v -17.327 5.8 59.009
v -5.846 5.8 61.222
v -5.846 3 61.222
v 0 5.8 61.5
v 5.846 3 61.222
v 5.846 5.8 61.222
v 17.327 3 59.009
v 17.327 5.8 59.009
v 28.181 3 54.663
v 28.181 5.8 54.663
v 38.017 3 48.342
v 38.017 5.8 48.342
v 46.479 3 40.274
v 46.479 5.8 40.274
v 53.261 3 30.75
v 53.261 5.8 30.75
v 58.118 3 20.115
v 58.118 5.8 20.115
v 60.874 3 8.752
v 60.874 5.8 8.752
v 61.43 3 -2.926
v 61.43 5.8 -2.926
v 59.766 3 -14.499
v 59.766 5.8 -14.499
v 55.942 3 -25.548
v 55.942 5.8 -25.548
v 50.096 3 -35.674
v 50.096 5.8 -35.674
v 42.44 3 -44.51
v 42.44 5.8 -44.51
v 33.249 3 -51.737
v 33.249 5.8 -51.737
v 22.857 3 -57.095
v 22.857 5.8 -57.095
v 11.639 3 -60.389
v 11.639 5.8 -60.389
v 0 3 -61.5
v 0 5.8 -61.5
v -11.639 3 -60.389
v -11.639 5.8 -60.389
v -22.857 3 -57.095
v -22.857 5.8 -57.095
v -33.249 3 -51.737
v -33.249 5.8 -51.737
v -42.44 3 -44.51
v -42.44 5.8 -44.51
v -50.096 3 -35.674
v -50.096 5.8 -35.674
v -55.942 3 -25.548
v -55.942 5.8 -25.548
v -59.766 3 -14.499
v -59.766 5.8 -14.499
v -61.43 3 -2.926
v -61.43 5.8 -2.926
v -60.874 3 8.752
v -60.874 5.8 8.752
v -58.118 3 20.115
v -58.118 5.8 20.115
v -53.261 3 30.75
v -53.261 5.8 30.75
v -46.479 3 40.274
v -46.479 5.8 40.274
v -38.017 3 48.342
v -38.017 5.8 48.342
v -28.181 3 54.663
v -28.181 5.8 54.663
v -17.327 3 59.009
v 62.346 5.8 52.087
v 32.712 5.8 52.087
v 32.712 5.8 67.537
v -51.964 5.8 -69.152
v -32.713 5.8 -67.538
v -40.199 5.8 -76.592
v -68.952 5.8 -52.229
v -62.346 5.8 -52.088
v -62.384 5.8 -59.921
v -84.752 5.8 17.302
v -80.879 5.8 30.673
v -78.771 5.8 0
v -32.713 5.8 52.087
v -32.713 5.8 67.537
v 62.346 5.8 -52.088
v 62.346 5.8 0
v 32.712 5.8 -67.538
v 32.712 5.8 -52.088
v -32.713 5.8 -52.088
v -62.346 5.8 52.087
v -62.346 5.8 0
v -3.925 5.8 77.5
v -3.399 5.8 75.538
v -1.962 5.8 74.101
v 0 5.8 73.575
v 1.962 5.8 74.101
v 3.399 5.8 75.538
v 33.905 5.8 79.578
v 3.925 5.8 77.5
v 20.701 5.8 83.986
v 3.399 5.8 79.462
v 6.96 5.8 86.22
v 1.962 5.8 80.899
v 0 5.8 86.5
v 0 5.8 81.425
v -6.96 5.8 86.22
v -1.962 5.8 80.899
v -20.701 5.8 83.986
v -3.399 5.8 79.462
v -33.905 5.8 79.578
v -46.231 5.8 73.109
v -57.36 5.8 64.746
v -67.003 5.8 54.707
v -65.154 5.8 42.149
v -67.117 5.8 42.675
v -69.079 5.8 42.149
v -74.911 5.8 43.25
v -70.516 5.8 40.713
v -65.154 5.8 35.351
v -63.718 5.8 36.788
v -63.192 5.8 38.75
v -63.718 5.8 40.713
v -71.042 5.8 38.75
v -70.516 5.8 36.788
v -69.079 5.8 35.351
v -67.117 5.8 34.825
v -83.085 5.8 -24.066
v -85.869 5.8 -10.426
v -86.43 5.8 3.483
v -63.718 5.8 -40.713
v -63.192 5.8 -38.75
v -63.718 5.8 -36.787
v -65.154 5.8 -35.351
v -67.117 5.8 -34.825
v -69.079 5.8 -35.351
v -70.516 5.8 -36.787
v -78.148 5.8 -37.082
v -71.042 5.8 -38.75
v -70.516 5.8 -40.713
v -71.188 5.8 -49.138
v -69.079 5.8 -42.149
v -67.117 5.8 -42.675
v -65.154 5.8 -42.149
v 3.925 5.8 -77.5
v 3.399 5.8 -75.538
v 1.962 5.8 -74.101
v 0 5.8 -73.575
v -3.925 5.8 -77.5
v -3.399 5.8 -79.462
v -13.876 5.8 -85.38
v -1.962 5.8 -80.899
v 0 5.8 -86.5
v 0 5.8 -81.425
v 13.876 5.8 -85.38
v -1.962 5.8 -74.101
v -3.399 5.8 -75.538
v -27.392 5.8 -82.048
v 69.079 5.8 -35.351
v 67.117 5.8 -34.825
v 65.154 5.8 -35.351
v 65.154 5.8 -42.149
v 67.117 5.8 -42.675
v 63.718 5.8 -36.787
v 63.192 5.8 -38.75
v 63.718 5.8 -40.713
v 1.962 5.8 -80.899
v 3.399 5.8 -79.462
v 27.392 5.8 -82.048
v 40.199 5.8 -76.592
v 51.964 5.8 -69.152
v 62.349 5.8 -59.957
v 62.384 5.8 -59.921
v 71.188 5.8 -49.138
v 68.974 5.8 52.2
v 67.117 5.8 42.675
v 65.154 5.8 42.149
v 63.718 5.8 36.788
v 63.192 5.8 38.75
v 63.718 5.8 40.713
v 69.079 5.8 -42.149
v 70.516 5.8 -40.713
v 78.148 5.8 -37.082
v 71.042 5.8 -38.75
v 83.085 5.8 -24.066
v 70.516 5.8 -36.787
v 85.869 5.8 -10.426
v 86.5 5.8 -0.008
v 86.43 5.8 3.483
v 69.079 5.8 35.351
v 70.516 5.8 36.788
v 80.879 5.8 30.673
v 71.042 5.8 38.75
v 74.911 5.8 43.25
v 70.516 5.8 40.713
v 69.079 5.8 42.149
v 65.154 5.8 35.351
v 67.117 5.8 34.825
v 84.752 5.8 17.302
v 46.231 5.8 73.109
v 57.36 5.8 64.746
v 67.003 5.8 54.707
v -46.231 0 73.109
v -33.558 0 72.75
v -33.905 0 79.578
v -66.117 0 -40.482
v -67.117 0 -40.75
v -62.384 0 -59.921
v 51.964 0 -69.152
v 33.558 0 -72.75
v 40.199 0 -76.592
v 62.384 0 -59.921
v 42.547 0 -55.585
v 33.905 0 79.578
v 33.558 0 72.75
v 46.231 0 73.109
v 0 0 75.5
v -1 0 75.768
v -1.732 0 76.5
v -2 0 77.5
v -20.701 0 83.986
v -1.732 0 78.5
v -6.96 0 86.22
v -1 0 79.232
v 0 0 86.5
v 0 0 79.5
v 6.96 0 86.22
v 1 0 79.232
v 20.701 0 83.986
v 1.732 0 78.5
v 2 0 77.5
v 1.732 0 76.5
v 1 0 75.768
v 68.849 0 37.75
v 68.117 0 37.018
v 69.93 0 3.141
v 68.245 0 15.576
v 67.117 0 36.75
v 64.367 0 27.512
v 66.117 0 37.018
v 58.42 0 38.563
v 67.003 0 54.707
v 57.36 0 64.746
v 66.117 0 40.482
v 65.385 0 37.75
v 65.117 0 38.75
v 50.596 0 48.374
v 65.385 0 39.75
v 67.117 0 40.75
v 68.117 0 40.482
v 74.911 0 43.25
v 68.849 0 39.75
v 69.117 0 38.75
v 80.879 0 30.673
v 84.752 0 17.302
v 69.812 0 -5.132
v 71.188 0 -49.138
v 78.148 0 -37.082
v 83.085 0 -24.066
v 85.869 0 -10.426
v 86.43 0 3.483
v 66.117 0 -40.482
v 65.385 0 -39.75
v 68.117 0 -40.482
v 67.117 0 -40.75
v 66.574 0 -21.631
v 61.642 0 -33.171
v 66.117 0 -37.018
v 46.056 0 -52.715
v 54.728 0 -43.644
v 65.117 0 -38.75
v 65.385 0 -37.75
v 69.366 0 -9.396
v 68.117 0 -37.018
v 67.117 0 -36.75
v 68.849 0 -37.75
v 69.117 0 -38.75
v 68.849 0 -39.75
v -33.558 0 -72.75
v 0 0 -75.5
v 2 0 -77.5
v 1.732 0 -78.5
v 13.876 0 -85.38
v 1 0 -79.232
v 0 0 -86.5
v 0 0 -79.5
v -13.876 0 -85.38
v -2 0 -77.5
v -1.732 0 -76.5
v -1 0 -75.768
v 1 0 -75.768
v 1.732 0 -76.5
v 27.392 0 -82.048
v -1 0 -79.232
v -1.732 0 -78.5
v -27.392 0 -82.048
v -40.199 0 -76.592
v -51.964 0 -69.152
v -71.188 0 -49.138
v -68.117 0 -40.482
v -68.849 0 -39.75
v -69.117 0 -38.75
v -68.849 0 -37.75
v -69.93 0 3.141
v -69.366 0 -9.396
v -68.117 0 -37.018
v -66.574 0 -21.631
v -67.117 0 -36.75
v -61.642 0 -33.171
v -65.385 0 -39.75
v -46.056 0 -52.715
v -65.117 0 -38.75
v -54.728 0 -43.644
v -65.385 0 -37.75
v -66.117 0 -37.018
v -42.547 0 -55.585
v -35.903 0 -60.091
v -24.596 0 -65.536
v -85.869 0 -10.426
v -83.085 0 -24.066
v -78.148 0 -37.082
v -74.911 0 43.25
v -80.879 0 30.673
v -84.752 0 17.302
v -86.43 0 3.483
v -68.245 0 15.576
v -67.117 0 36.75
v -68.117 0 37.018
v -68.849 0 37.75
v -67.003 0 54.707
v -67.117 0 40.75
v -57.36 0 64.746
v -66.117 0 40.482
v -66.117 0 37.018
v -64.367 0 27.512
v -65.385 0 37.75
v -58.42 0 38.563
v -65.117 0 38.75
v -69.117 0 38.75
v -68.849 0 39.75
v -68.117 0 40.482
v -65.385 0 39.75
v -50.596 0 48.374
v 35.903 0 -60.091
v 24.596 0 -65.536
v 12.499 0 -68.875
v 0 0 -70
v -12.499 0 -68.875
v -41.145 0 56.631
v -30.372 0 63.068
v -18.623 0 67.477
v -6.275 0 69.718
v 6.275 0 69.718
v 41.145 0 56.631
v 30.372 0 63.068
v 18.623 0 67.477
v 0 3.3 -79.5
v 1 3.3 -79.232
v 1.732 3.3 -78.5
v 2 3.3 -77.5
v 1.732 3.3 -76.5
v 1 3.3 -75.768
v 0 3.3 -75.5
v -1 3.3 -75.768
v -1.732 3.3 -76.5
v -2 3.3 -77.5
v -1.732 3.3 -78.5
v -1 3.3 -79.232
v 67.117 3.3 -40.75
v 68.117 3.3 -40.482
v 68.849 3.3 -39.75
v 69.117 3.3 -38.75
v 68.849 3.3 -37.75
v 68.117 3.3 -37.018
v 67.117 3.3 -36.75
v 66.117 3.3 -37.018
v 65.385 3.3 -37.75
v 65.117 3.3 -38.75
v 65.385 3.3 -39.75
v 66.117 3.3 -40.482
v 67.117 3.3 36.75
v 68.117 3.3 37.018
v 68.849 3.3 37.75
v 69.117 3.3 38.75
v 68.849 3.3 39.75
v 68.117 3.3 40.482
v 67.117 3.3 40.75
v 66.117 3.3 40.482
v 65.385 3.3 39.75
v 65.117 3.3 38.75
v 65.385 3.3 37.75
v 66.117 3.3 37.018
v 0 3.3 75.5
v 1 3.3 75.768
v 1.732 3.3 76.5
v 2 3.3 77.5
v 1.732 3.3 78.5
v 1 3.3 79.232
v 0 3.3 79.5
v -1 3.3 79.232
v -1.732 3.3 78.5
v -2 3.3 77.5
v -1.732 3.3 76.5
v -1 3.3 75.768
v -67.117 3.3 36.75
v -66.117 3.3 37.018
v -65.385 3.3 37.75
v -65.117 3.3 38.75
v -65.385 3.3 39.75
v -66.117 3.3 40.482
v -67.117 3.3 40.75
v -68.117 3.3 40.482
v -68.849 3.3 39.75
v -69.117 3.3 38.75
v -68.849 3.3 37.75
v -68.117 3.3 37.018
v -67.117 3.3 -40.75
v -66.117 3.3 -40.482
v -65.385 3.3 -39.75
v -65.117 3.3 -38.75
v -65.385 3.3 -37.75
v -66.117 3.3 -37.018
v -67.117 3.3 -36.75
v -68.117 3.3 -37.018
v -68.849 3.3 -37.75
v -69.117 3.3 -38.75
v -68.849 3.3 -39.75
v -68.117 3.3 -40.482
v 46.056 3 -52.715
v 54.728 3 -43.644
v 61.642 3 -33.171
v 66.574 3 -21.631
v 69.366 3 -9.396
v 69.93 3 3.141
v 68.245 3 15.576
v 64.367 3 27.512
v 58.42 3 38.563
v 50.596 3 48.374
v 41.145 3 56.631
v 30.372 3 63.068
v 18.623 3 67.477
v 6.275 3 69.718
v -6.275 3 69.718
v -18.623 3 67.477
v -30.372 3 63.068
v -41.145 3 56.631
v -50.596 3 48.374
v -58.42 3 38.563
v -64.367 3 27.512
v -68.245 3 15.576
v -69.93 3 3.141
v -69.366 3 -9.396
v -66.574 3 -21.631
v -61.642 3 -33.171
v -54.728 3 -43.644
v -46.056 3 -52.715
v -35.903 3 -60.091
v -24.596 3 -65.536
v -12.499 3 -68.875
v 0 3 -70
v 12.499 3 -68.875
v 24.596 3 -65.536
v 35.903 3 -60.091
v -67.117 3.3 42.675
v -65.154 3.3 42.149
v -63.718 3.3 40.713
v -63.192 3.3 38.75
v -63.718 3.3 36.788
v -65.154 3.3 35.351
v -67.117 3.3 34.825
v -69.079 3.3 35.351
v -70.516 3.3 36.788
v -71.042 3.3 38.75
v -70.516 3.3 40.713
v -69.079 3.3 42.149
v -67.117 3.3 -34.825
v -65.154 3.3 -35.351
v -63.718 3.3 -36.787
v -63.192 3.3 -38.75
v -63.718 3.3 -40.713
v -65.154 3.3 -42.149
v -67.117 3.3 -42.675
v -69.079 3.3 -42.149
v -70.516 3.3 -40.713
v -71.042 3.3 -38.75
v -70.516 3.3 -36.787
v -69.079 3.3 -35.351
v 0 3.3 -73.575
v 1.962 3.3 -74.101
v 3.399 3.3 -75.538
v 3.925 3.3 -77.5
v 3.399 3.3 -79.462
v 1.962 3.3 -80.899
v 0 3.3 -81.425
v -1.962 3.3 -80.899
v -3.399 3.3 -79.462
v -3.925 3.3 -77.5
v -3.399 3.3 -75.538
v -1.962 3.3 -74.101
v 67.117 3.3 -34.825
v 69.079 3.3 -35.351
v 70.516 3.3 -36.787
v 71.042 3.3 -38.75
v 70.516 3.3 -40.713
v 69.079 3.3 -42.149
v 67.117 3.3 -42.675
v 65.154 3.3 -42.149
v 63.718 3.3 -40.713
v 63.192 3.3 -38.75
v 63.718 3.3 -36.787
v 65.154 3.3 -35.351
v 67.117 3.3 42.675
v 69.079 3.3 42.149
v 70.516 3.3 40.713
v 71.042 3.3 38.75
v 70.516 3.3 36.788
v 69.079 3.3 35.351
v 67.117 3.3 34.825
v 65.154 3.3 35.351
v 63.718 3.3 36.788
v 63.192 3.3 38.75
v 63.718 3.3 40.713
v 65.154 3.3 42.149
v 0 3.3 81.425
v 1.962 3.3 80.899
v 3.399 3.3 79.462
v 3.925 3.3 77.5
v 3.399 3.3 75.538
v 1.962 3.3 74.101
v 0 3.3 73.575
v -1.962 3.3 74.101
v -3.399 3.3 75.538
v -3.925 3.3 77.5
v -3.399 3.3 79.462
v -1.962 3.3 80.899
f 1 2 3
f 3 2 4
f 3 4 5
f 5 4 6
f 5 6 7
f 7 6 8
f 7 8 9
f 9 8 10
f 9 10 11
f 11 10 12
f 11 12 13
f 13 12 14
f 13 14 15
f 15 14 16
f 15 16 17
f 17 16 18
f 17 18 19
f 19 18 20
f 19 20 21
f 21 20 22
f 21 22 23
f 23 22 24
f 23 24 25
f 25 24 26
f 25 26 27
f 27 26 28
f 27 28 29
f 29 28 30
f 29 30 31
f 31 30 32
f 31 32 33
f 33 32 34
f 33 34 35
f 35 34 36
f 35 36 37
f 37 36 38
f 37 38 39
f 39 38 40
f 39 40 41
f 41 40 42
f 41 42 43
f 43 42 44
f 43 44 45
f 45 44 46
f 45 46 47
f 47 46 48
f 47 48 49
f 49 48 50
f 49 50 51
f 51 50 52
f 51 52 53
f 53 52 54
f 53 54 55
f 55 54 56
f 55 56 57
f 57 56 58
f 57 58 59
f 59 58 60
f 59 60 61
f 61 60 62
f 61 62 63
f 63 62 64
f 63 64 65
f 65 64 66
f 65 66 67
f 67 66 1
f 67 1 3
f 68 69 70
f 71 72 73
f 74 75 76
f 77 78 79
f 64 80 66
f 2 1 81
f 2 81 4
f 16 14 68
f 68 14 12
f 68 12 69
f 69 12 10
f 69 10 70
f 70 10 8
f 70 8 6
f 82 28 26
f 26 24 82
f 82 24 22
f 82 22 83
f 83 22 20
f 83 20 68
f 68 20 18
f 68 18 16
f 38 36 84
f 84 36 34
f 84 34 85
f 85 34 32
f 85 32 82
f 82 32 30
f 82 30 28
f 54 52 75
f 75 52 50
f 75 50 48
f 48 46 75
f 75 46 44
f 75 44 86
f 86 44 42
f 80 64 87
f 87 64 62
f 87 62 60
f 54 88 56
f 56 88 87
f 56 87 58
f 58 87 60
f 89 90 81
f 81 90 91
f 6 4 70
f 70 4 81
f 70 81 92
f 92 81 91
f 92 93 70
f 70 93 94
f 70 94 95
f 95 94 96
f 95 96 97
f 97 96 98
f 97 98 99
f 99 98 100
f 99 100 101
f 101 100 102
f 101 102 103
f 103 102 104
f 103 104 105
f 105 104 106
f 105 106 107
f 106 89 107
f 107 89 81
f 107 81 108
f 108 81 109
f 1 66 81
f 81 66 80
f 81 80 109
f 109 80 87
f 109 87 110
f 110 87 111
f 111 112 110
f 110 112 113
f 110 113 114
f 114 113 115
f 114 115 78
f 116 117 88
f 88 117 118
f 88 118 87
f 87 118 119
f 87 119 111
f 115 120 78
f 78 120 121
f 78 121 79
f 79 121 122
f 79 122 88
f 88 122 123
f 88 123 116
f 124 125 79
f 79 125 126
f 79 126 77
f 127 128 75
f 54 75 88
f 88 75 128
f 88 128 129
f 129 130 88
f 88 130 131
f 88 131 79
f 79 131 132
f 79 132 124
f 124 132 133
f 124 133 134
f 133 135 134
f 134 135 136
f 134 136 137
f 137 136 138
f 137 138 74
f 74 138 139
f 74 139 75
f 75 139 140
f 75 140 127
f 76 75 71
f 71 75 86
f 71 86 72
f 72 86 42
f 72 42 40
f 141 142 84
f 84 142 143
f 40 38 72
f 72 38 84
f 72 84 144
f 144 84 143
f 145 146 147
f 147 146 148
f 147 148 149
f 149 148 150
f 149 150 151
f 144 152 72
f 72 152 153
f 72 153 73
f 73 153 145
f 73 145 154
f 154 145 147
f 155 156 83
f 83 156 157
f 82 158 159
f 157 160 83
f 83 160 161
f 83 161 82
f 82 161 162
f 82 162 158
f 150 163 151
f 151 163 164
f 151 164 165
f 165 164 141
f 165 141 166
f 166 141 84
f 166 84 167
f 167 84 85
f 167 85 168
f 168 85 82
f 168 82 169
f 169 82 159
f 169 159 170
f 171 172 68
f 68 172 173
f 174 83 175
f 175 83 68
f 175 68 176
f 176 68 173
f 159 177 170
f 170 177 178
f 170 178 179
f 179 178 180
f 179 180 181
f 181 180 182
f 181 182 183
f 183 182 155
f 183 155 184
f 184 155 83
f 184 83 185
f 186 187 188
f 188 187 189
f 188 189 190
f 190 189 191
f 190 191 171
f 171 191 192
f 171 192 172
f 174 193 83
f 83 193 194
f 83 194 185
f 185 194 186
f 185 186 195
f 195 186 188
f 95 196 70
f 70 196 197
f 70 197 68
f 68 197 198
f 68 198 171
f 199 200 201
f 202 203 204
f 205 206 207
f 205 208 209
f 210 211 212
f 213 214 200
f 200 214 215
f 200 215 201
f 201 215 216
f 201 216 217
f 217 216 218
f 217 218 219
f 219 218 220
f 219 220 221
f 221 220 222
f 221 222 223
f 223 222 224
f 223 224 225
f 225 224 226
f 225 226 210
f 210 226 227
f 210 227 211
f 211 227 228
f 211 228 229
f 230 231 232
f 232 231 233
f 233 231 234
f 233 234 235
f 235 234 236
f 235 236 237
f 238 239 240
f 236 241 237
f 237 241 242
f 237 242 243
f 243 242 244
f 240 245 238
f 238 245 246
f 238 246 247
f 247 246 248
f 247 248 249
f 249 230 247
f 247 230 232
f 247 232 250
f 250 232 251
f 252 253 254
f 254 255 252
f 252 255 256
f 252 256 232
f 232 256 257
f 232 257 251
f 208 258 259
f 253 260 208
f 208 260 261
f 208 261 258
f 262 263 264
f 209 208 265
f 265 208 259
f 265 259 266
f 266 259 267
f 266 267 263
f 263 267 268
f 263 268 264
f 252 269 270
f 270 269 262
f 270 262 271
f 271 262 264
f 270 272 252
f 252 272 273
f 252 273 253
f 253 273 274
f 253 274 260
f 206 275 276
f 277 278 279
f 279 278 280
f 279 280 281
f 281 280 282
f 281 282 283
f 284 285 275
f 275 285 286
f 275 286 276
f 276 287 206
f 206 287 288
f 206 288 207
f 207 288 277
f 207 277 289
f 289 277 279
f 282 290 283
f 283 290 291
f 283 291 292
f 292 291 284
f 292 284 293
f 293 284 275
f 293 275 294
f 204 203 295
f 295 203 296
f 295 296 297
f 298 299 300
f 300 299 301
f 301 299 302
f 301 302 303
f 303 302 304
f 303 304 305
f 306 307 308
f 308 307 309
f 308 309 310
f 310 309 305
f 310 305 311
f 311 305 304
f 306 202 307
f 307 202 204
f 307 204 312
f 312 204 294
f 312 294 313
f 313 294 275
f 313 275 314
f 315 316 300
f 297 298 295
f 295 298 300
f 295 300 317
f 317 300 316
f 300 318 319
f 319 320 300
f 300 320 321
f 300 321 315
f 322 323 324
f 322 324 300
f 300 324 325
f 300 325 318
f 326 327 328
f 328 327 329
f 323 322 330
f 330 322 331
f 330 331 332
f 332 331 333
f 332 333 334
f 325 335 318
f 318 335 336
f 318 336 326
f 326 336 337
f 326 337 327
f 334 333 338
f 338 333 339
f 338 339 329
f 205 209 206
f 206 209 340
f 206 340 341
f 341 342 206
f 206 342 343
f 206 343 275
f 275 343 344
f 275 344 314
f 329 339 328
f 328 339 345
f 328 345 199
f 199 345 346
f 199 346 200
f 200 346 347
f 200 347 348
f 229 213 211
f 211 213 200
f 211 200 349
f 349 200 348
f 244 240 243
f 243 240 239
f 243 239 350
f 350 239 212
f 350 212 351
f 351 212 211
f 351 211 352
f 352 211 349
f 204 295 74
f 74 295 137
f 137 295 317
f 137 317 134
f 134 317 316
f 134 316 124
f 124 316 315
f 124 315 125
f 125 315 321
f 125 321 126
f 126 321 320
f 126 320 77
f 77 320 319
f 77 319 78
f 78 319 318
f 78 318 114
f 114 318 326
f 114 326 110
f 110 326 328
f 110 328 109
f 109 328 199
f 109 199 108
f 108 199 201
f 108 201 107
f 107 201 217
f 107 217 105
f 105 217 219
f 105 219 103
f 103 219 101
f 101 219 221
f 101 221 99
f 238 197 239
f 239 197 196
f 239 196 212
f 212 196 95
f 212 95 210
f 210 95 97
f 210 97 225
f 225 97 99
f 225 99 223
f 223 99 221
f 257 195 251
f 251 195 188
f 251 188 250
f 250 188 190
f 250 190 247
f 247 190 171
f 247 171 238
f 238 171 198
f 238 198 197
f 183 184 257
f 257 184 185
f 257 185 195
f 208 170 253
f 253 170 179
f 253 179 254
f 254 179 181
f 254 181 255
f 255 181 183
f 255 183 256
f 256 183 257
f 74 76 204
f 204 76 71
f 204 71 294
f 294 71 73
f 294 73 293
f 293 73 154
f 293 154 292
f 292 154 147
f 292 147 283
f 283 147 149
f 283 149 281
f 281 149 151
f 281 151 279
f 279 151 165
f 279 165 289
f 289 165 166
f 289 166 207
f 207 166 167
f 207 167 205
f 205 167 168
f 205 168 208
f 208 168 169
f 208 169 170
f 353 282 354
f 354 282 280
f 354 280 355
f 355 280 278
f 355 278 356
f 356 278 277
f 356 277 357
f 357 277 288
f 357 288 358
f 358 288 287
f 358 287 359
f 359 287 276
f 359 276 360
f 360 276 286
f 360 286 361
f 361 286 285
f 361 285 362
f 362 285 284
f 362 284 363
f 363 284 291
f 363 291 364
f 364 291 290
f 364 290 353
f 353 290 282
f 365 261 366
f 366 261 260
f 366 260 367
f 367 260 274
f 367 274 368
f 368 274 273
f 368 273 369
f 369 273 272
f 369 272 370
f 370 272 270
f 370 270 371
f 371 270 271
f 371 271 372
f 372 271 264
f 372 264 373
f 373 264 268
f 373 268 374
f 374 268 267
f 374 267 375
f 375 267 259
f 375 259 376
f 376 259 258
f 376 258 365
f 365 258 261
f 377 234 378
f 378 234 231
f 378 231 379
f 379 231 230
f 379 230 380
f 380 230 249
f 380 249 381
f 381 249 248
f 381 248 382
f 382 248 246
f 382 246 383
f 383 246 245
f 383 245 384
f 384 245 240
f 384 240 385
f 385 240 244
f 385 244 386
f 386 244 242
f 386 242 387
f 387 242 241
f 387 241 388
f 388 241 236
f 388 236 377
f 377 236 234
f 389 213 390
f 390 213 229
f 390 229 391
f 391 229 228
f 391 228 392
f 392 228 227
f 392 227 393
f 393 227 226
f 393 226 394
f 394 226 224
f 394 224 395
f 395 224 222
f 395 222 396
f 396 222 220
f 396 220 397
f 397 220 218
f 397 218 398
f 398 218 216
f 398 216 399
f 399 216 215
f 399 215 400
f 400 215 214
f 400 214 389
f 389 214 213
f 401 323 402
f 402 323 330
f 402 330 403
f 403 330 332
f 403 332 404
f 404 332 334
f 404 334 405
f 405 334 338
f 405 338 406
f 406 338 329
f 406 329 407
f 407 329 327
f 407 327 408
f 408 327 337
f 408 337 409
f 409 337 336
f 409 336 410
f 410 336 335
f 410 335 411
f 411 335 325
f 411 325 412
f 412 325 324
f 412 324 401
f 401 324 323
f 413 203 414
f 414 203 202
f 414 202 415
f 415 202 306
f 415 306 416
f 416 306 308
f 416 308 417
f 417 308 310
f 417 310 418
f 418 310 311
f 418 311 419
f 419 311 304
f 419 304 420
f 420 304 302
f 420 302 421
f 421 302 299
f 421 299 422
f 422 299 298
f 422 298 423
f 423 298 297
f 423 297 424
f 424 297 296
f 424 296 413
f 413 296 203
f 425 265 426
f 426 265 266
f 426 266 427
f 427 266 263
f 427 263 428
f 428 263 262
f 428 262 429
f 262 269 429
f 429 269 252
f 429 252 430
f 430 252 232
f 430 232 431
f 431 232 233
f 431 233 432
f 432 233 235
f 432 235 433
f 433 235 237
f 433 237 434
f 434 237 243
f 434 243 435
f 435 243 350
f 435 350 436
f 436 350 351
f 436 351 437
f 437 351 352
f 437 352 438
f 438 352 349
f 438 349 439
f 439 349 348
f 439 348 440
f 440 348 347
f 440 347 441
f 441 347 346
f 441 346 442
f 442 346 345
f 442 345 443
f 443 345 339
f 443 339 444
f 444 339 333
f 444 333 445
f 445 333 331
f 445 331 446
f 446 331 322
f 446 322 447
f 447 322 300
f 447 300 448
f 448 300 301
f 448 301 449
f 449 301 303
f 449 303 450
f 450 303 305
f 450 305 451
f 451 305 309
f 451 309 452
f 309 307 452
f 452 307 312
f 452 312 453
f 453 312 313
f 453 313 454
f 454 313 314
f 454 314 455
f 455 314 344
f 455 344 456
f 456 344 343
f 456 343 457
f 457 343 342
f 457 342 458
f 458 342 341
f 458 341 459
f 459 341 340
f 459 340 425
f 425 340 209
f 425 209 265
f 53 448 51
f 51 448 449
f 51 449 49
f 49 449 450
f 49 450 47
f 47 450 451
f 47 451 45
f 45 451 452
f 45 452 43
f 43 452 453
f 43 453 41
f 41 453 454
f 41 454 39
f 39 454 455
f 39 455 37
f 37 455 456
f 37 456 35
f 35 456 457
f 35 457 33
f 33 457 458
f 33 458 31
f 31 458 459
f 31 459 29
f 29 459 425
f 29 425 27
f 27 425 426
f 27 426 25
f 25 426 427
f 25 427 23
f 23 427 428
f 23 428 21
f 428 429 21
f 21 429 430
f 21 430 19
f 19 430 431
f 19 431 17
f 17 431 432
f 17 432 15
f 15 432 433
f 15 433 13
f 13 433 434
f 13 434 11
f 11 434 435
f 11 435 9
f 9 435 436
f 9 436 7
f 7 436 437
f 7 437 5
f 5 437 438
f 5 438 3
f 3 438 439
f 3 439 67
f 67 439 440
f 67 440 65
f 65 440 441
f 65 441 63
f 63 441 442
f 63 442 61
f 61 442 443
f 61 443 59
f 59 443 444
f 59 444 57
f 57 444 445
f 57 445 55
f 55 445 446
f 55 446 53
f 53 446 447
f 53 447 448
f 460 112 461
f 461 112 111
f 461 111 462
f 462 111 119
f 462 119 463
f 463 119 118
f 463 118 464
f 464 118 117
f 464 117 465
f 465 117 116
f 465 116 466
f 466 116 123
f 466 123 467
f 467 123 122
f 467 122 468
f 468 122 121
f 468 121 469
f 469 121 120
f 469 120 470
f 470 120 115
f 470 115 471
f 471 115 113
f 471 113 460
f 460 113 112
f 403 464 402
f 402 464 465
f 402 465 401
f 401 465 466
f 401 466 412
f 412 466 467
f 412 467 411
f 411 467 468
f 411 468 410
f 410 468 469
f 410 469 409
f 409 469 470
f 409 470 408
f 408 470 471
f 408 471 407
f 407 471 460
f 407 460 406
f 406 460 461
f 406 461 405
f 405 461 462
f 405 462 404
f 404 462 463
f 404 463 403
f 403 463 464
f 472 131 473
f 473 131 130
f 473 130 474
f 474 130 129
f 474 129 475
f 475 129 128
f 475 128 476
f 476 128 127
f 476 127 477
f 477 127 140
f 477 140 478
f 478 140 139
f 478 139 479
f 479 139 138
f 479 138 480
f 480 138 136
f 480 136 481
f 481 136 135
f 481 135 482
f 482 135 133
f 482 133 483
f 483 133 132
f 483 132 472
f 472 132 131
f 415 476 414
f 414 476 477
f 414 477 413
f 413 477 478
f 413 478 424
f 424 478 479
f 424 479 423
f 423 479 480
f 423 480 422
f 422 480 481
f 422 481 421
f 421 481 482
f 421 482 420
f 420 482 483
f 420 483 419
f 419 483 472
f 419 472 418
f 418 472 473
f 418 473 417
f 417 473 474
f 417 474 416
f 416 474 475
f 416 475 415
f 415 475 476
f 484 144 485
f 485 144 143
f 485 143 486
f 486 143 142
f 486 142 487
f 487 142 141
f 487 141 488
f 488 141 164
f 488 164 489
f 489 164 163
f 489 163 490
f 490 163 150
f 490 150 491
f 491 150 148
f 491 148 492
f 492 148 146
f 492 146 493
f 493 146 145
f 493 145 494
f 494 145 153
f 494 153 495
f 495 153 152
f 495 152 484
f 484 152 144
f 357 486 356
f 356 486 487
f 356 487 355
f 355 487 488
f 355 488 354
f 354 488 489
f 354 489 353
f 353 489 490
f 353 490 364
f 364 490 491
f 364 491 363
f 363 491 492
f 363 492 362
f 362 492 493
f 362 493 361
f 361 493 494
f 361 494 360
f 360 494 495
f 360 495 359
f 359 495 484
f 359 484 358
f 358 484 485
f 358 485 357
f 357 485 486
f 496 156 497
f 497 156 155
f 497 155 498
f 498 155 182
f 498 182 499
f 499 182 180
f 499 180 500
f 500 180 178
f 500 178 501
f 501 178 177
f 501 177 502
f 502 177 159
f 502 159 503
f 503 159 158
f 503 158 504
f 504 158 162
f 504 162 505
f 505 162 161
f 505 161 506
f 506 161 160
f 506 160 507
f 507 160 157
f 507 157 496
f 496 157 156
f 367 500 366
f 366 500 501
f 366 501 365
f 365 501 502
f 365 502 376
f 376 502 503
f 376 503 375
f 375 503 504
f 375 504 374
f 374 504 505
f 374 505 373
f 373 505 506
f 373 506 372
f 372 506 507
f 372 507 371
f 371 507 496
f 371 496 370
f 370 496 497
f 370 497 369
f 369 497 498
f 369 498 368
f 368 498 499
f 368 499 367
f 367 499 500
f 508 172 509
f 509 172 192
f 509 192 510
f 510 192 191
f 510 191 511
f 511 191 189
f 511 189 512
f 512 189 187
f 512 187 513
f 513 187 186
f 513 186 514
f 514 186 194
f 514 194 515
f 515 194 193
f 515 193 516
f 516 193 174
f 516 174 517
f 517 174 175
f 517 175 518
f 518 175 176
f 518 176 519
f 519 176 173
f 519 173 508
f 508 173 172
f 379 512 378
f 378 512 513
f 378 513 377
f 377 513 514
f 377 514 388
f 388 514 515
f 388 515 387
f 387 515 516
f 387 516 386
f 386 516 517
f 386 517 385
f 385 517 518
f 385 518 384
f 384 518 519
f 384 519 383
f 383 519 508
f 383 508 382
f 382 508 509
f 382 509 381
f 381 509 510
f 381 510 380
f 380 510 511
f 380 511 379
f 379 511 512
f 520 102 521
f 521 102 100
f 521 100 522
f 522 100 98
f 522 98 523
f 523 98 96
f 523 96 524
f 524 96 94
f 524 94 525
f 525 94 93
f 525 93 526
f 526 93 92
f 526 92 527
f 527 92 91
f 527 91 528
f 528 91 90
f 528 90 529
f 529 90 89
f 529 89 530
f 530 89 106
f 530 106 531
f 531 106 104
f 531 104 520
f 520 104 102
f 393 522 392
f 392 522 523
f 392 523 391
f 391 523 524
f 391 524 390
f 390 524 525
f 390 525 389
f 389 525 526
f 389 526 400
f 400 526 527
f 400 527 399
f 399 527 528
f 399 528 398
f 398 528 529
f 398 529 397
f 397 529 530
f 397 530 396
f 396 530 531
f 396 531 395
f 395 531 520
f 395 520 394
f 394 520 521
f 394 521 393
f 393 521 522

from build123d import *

# Parameters (mm, degrees)
SKETCH2_R                 = 86.5
SKETCH2_R_2               = 61.5
SKETCH2_R_3               = 2
BOSS_EXTRUDE1_DEPTH       = 5.8
SKETCH3_R                 = 70
SKETCH3_R_2               = 61.5
CUT_EXTRUDE1_DEPTH        = 3
ADVANCEDHOLE1_START       = 3.3
ADVANCEDHOLE1_OUTLINE_R   = 3.925
ADVANCEDHOLE1_OUTLINE_R_2 = 2
ADVANCEDHOLE1_DEPTH       = 2.5
CIRPATTERN1_COUNT         = 6


# Read off the part's stored shape, not the designer's step: AdvancedHole1
with BuildPart() as part:
    # Sketch2 → Boss-Extrude1 (new body)
    with BuildSketch(Plane(origin=(0, 0, 0), x_dir=(1, 0, 0), z_dir=(0, 1, 0))):
        with Locations(Location((0, 0, 0), (0, 0, 270))):
            Circle(SKETCH2_R)
        with Locations(Location((0, 0, 0), (0, 0, 270))):
            Circle(SKETCH2_R_2, mode=Mode.SUBTRACT)
        with Locations(Location((0, 77.5, 0), (0, 0, 270))):
            Circle(SKETCH2_R_3, mode=Mode.SUBTRACT)
        with Locations(Location((67.116968793, 38.75, 0), (0, 0, 270))):
            Circle(SKETCH2_R_3, mode=Mode.SUBTRACT)
        with Locations(Location((67.116968793, -38.75, 0), (0, 0, 270))):
            Circle(SKETCH2_R_3, mode=Mode.SUBTRACT)
        with Locations(Location((0, -77.5, 0), (0, 0, 270))):
            Circle(SKETCH2_R_3, mode=Mode.SUBTRACT)
        with Locations(Location((-67.116968793, -38.75, 0), (0, 0, 270))):
            Circle(SKETCH2_R_3, mode=Mode.SUBTRACT)
        with Locations(Location((-67.116968793, 38.75, 0), (0, 0, 270))):
            Circle(SKETCH2_R_3, mode=Mode.SUBTRACT)
    extrude(amount=BOSS_EXTRUDE1_DEPTH)

    # Sketch3 → Cut-Extrude1 (cut)
    with BuildSketch(Plane.XZ):
        with Locations(Location((0, 0, 0), (0, 0, 270))):
            Circle(SKETCH3_R)
        with Locations(Location((0, 0, 0), (0, 0, 270))):
            Circle(SKETCH3_R_2, mode=Mode.SUBTRACT)
    extrude(amount=-CUT_EXTRUDE1_DEPTH, mode=Mode.SUBTRACT)

    # AdvancedHole1 outline → AdvancedHole1 (cut)
    with BuildSketch(Plane(origin=(0, 0, 0), x_dir=(1, 0, 0), z_dir=(0, 1, 0)).offset(ADVANCEDHOLE1_START)):
        with Locations((-67.116968793, -38.75)):
            Circle(ADVANCEDHOLE1_OUTLINE_R)
        with Locations((-67.116968793, -38.75)):
            Circle(ADVANCEDHOLE1_OUTLINE_R_2, mode=Mode.SUBTRACT)
    advancedhole1 = extrude(amount=ADVANCEDHOLE1_DEPTH, mode=Mode.SUBTRACT)

    # CirPattern1: AdvancedHole1 ×6 about axis
    cirpattern1_axis = Axis((0, 0, 0), (0, 1, 0))
    for i in range(1, CIRPATTERN1_COUNT):
        add(advancedhole1.rotate(cirpattern1_axis, i * 360 / CIRPATTERN1_COUNT), mode=Mode.SUBTRACT)


solid = part.part
